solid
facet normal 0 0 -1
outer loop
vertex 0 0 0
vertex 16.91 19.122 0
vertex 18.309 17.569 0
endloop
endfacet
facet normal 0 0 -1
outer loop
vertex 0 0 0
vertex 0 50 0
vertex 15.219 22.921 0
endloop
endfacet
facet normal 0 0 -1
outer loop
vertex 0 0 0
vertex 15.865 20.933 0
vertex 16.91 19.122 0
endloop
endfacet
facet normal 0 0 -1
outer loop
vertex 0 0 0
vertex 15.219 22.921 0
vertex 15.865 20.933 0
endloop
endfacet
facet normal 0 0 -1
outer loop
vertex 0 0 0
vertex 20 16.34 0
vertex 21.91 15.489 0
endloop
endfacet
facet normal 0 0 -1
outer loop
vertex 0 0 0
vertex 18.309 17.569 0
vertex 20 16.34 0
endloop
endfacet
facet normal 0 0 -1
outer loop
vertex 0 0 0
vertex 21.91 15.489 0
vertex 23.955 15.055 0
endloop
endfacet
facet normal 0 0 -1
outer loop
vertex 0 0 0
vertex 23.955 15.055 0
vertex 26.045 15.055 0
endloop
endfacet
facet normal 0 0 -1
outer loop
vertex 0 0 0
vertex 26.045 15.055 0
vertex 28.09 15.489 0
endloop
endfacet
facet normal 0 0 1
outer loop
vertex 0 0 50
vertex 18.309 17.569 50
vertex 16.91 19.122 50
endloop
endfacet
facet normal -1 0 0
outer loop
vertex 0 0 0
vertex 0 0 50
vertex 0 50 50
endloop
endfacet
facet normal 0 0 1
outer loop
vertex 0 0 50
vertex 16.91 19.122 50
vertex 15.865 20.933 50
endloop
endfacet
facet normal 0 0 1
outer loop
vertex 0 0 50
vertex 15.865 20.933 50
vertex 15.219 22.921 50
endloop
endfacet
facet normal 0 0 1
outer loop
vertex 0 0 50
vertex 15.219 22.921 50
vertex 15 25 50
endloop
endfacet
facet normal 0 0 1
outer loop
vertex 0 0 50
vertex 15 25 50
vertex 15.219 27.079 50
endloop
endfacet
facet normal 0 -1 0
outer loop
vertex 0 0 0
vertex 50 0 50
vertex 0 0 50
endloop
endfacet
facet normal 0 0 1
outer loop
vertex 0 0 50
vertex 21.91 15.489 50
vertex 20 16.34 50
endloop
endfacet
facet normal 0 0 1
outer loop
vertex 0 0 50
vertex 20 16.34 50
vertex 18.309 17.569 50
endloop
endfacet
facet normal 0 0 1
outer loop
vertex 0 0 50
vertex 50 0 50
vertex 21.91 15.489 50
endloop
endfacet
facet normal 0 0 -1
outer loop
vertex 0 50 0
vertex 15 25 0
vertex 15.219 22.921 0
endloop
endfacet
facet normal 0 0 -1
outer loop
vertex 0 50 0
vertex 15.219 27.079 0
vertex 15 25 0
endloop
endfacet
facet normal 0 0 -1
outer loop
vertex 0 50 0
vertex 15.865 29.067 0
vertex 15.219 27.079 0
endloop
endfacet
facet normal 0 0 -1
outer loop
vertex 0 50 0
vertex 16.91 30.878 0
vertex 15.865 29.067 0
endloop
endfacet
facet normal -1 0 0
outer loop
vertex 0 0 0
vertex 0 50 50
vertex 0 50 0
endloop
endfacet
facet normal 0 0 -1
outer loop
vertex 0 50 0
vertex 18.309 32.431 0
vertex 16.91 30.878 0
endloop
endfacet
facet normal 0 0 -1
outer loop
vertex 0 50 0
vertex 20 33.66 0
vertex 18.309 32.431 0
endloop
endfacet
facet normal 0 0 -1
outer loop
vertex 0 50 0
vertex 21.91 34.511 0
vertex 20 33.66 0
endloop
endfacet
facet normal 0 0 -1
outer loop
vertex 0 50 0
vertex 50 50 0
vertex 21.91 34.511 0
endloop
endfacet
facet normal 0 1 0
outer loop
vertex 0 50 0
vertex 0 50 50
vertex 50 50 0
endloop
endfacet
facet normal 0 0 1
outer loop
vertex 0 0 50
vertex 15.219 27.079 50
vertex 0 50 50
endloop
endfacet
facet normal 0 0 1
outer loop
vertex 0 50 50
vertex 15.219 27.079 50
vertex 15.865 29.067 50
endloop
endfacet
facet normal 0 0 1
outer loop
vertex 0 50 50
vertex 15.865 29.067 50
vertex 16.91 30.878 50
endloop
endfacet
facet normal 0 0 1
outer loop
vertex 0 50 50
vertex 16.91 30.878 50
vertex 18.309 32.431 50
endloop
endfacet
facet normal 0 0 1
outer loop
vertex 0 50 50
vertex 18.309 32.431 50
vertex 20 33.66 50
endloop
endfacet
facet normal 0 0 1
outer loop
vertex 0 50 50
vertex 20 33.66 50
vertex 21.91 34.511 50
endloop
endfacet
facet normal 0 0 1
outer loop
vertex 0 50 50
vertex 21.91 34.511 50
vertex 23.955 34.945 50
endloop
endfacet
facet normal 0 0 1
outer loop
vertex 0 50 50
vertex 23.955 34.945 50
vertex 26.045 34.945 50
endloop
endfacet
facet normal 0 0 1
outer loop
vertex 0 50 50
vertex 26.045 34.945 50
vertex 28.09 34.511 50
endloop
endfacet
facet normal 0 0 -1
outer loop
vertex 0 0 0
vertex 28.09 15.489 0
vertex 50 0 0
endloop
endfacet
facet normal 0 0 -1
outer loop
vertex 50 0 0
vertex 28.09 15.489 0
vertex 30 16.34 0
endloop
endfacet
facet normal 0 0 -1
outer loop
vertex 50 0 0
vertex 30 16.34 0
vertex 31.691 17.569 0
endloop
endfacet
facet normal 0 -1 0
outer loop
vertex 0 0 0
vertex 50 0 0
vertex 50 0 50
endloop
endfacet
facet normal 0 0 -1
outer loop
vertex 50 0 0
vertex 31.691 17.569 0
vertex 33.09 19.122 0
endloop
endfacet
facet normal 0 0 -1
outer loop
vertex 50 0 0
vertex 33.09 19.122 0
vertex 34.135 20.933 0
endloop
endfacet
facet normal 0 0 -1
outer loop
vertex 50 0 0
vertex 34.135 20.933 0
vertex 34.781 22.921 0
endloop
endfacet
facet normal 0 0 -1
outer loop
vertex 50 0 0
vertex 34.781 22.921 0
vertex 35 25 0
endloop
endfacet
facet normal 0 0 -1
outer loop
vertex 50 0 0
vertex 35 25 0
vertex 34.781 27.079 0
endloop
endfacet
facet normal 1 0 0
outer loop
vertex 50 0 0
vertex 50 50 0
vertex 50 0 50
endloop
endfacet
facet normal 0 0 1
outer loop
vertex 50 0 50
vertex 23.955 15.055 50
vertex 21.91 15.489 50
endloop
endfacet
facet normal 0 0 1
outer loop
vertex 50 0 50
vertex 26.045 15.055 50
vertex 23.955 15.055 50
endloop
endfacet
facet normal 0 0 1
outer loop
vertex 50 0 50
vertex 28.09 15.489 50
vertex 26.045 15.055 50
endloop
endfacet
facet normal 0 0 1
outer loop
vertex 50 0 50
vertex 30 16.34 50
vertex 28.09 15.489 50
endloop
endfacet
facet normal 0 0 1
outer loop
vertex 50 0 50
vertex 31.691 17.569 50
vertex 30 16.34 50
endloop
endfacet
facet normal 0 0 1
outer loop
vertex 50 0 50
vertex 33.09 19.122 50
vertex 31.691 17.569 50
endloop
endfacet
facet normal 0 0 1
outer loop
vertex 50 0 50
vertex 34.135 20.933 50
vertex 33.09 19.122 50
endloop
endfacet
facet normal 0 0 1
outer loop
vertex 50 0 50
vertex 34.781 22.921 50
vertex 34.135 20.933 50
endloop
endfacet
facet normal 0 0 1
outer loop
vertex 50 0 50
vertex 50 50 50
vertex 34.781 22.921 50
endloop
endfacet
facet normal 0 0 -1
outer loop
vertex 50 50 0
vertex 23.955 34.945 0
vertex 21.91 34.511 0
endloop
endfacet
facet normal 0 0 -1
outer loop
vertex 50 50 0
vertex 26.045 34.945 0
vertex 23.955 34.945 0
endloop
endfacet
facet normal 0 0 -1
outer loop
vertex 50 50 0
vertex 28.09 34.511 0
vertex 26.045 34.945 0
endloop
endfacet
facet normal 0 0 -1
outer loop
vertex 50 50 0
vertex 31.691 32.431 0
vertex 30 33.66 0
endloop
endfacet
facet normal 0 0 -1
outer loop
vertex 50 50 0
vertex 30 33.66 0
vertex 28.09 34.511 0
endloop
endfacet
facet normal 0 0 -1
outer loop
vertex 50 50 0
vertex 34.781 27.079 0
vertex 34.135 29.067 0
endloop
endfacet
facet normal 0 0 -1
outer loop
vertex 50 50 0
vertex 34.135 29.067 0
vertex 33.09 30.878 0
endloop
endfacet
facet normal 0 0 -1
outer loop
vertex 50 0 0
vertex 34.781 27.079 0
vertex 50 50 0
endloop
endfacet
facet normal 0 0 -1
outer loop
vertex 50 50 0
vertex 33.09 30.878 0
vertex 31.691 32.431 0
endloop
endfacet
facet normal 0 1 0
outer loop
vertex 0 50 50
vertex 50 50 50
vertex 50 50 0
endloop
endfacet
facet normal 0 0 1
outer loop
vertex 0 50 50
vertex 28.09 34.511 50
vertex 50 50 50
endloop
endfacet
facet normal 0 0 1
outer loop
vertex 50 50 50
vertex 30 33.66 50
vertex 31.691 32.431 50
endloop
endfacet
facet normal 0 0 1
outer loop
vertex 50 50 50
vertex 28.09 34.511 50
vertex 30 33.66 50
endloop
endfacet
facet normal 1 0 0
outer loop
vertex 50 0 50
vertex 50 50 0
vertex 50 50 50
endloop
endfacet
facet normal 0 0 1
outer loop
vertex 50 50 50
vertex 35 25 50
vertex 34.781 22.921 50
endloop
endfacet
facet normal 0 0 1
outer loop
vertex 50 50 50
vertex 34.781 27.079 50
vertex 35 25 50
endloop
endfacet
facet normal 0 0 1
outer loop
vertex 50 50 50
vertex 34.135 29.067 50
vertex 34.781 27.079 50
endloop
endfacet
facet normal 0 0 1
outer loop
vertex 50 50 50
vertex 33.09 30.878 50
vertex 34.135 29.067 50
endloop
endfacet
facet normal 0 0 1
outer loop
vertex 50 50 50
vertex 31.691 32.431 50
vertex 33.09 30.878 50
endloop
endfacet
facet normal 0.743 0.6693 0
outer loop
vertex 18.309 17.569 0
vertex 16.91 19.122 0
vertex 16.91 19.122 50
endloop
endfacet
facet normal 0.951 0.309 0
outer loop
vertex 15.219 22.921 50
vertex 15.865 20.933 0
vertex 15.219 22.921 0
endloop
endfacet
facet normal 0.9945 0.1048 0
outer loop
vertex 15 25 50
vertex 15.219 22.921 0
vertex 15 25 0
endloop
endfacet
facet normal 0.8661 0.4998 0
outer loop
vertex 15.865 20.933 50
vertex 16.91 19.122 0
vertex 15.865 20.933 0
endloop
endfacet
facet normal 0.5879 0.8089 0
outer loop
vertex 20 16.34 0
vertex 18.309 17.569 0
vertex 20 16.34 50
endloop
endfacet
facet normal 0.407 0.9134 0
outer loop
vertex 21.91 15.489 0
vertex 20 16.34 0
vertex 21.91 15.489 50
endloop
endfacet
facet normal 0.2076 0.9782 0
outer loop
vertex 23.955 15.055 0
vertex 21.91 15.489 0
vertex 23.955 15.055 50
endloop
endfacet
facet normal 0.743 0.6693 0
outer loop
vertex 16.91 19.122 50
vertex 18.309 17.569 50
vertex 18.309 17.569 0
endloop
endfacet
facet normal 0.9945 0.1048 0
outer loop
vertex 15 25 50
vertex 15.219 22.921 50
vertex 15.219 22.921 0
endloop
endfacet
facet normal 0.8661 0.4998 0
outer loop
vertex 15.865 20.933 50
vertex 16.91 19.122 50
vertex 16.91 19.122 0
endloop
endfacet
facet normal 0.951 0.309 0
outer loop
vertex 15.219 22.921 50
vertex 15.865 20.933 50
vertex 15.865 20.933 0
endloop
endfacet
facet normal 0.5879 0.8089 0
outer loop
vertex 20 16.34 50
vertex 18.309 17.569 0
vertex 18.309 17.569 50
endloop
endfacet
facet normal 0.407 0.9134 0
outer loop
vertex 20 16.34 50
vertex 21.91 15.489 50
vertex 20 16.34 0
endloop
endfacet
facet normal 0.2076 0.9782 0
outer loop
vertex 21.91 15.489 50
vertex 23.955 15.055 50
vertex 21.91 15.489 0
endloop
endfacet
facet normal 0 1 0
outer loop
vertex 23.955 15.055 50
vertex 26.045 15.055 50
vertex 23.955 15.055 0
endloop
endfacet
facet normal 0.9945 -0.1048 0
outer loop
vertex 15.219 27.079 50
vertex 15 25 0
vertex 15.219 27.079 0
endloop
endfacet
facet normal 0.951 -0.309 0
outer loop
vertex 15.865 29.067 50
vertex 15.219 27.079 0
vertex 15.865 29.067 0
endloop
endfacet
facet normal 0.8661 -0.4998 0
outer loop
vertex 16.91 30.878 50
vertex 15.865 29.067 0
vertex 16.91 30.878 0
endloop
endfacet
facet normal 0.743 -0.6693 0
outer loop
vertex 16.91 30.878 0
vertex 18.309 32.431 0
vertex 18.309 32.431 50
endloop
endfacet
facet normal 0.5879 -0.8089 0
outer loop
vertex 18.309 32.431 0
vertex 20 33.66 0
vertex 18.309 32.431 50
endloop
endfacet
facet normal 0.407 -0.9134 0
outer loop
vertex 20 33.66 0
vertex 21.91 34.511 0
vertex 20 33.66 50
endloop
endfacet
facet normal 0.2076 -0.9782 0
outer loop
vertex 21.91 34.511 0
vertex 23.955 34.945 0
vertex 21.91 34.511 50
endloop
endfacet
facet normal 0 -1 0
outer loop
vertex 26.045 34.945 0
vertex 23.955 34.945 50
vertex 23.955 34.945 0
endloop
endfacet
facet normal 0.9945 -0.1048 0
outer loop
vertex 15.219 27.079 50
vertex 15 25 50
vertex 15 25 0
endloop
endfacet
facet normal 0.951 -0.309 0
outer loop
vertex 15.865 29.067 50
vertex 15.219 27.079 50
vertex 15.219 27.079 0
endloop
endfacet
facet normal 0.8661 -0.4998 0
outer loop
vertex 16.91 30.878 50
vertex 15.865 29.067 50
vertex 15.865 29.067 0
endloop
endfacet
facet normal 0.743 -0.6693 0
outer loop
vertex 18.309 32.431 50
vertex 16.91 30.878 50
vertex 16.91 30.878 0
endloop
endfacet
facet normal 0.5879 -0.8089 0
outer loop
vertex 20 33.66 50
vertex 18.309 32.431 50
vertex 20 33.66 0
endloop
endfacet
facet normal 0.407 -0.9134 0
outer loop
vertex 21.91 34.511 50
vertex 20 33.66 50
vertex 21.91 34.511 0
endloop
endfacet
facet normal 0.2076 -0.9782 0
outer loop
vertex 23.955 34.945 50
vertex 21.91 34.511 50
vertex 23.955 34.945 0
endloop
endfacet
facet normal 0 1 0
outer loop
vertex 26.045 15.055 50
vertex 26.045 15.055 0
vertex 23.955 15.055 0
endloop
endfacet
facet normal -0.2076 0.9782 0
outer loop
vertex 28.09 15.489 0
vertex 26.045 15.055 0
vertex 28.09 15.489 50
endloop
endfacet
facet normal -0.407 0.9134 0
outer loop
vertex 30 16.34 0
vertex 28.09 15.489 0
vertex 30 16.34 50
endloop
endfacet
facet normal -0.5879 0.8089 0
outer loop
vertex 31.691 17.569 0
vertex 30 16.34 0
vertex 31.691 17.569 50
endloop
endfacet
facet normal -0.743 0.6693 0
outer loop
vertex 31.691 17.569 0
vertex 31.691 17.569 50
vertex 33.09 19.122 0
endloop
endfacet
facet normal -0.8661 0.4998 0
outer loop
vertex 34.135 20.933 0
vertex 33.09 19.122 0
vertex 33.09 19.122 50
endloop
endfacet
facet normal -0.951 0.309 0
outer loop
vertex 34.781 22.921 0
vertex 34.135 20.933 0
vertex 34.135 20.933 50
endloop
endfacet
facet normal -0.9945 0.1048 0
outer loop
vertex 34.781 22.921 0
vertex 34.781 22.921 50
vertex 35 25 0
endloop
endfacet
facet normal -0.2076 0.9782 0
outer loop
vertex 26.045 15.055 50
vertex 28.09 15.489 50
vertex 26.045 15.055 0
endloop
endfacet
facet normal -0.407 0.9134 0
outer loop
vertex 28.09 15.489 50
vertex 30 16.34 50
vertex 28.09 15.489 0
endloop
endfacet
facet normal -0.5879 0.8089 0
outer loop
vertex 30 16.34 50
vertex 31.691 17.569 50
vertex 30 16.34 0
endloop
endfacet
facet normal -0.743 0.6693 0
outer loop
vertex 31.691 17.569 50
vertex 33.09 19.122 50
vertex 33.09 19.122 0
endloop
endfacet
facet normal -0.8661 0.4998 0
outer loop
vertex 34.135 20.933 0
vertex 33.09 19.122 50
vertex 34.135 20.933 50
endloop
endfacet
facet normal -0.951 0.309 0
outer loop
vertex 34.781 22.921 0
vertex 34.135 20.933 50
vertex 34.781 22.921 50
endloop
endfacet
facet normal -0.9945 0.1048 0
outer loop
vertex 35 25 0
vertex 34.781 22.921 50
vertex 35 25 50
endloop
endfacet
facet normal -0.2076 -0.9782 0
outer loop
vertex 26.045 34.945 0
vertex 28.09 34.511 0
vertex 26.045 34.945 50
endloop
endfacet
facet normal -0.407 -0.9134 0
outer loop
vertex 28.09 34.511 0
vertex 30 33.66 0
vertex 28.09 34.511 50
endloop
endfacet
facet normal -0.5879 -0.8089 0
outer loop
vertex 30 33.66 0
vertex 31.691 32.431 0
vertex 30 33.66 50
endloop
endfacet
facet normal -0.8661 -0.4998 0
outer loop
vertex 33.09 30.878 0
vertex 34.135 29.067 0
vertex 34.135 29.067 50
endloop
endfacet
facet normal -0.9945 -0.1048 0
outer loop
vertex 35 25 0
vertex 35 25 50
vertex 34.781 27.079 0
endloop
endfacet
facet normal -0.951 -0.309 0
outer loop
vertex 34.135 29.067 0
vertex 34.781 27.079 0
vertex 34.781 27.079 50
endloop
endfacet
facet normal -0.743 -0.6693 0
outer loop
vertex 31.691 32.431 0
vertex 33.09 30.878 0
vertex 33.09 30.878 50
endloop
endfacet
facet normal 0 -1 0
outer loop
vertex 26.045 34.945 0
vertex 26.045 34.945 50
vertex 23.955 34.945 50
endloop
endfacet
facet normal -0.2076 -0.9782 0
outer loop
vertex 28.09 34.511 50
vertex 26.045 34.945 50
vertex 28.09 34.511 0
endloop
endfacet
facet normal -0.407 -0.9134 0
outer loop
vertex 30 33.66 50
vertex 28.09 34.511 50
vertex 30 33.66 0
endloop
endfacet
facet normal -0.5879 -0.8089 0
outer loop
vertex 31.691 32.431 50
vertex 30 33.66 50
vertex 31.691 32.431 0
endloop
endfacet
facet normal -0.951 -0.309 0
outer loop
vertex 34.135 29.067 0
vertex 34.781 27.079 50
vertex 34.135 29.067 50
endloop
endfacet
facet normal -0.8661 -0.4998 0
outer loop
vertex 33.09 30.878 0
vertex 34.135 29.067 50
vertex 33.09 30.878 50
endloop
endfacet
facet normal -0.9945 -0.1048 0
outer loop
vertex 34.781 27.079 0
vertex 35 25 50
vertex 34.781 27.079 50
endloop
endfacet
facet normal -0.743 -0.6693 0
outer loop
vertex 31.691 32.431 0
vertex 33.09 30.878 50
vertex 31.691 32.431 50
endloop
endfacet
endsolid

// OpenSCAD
difference() {
    // 立方体 (50mm x 50mm x 50mm)
    cube([50, 50, 50]);

    // 貫通穴 (直径20mm、半径10mm、高さ50mm)
    // 中央に配置し、Z軸方向に貫通させるため、高さは立方体のサイズと同じにする。
    translate([25, 25, 0]) {
        cylinder(r=10, h=50);
    }
}
